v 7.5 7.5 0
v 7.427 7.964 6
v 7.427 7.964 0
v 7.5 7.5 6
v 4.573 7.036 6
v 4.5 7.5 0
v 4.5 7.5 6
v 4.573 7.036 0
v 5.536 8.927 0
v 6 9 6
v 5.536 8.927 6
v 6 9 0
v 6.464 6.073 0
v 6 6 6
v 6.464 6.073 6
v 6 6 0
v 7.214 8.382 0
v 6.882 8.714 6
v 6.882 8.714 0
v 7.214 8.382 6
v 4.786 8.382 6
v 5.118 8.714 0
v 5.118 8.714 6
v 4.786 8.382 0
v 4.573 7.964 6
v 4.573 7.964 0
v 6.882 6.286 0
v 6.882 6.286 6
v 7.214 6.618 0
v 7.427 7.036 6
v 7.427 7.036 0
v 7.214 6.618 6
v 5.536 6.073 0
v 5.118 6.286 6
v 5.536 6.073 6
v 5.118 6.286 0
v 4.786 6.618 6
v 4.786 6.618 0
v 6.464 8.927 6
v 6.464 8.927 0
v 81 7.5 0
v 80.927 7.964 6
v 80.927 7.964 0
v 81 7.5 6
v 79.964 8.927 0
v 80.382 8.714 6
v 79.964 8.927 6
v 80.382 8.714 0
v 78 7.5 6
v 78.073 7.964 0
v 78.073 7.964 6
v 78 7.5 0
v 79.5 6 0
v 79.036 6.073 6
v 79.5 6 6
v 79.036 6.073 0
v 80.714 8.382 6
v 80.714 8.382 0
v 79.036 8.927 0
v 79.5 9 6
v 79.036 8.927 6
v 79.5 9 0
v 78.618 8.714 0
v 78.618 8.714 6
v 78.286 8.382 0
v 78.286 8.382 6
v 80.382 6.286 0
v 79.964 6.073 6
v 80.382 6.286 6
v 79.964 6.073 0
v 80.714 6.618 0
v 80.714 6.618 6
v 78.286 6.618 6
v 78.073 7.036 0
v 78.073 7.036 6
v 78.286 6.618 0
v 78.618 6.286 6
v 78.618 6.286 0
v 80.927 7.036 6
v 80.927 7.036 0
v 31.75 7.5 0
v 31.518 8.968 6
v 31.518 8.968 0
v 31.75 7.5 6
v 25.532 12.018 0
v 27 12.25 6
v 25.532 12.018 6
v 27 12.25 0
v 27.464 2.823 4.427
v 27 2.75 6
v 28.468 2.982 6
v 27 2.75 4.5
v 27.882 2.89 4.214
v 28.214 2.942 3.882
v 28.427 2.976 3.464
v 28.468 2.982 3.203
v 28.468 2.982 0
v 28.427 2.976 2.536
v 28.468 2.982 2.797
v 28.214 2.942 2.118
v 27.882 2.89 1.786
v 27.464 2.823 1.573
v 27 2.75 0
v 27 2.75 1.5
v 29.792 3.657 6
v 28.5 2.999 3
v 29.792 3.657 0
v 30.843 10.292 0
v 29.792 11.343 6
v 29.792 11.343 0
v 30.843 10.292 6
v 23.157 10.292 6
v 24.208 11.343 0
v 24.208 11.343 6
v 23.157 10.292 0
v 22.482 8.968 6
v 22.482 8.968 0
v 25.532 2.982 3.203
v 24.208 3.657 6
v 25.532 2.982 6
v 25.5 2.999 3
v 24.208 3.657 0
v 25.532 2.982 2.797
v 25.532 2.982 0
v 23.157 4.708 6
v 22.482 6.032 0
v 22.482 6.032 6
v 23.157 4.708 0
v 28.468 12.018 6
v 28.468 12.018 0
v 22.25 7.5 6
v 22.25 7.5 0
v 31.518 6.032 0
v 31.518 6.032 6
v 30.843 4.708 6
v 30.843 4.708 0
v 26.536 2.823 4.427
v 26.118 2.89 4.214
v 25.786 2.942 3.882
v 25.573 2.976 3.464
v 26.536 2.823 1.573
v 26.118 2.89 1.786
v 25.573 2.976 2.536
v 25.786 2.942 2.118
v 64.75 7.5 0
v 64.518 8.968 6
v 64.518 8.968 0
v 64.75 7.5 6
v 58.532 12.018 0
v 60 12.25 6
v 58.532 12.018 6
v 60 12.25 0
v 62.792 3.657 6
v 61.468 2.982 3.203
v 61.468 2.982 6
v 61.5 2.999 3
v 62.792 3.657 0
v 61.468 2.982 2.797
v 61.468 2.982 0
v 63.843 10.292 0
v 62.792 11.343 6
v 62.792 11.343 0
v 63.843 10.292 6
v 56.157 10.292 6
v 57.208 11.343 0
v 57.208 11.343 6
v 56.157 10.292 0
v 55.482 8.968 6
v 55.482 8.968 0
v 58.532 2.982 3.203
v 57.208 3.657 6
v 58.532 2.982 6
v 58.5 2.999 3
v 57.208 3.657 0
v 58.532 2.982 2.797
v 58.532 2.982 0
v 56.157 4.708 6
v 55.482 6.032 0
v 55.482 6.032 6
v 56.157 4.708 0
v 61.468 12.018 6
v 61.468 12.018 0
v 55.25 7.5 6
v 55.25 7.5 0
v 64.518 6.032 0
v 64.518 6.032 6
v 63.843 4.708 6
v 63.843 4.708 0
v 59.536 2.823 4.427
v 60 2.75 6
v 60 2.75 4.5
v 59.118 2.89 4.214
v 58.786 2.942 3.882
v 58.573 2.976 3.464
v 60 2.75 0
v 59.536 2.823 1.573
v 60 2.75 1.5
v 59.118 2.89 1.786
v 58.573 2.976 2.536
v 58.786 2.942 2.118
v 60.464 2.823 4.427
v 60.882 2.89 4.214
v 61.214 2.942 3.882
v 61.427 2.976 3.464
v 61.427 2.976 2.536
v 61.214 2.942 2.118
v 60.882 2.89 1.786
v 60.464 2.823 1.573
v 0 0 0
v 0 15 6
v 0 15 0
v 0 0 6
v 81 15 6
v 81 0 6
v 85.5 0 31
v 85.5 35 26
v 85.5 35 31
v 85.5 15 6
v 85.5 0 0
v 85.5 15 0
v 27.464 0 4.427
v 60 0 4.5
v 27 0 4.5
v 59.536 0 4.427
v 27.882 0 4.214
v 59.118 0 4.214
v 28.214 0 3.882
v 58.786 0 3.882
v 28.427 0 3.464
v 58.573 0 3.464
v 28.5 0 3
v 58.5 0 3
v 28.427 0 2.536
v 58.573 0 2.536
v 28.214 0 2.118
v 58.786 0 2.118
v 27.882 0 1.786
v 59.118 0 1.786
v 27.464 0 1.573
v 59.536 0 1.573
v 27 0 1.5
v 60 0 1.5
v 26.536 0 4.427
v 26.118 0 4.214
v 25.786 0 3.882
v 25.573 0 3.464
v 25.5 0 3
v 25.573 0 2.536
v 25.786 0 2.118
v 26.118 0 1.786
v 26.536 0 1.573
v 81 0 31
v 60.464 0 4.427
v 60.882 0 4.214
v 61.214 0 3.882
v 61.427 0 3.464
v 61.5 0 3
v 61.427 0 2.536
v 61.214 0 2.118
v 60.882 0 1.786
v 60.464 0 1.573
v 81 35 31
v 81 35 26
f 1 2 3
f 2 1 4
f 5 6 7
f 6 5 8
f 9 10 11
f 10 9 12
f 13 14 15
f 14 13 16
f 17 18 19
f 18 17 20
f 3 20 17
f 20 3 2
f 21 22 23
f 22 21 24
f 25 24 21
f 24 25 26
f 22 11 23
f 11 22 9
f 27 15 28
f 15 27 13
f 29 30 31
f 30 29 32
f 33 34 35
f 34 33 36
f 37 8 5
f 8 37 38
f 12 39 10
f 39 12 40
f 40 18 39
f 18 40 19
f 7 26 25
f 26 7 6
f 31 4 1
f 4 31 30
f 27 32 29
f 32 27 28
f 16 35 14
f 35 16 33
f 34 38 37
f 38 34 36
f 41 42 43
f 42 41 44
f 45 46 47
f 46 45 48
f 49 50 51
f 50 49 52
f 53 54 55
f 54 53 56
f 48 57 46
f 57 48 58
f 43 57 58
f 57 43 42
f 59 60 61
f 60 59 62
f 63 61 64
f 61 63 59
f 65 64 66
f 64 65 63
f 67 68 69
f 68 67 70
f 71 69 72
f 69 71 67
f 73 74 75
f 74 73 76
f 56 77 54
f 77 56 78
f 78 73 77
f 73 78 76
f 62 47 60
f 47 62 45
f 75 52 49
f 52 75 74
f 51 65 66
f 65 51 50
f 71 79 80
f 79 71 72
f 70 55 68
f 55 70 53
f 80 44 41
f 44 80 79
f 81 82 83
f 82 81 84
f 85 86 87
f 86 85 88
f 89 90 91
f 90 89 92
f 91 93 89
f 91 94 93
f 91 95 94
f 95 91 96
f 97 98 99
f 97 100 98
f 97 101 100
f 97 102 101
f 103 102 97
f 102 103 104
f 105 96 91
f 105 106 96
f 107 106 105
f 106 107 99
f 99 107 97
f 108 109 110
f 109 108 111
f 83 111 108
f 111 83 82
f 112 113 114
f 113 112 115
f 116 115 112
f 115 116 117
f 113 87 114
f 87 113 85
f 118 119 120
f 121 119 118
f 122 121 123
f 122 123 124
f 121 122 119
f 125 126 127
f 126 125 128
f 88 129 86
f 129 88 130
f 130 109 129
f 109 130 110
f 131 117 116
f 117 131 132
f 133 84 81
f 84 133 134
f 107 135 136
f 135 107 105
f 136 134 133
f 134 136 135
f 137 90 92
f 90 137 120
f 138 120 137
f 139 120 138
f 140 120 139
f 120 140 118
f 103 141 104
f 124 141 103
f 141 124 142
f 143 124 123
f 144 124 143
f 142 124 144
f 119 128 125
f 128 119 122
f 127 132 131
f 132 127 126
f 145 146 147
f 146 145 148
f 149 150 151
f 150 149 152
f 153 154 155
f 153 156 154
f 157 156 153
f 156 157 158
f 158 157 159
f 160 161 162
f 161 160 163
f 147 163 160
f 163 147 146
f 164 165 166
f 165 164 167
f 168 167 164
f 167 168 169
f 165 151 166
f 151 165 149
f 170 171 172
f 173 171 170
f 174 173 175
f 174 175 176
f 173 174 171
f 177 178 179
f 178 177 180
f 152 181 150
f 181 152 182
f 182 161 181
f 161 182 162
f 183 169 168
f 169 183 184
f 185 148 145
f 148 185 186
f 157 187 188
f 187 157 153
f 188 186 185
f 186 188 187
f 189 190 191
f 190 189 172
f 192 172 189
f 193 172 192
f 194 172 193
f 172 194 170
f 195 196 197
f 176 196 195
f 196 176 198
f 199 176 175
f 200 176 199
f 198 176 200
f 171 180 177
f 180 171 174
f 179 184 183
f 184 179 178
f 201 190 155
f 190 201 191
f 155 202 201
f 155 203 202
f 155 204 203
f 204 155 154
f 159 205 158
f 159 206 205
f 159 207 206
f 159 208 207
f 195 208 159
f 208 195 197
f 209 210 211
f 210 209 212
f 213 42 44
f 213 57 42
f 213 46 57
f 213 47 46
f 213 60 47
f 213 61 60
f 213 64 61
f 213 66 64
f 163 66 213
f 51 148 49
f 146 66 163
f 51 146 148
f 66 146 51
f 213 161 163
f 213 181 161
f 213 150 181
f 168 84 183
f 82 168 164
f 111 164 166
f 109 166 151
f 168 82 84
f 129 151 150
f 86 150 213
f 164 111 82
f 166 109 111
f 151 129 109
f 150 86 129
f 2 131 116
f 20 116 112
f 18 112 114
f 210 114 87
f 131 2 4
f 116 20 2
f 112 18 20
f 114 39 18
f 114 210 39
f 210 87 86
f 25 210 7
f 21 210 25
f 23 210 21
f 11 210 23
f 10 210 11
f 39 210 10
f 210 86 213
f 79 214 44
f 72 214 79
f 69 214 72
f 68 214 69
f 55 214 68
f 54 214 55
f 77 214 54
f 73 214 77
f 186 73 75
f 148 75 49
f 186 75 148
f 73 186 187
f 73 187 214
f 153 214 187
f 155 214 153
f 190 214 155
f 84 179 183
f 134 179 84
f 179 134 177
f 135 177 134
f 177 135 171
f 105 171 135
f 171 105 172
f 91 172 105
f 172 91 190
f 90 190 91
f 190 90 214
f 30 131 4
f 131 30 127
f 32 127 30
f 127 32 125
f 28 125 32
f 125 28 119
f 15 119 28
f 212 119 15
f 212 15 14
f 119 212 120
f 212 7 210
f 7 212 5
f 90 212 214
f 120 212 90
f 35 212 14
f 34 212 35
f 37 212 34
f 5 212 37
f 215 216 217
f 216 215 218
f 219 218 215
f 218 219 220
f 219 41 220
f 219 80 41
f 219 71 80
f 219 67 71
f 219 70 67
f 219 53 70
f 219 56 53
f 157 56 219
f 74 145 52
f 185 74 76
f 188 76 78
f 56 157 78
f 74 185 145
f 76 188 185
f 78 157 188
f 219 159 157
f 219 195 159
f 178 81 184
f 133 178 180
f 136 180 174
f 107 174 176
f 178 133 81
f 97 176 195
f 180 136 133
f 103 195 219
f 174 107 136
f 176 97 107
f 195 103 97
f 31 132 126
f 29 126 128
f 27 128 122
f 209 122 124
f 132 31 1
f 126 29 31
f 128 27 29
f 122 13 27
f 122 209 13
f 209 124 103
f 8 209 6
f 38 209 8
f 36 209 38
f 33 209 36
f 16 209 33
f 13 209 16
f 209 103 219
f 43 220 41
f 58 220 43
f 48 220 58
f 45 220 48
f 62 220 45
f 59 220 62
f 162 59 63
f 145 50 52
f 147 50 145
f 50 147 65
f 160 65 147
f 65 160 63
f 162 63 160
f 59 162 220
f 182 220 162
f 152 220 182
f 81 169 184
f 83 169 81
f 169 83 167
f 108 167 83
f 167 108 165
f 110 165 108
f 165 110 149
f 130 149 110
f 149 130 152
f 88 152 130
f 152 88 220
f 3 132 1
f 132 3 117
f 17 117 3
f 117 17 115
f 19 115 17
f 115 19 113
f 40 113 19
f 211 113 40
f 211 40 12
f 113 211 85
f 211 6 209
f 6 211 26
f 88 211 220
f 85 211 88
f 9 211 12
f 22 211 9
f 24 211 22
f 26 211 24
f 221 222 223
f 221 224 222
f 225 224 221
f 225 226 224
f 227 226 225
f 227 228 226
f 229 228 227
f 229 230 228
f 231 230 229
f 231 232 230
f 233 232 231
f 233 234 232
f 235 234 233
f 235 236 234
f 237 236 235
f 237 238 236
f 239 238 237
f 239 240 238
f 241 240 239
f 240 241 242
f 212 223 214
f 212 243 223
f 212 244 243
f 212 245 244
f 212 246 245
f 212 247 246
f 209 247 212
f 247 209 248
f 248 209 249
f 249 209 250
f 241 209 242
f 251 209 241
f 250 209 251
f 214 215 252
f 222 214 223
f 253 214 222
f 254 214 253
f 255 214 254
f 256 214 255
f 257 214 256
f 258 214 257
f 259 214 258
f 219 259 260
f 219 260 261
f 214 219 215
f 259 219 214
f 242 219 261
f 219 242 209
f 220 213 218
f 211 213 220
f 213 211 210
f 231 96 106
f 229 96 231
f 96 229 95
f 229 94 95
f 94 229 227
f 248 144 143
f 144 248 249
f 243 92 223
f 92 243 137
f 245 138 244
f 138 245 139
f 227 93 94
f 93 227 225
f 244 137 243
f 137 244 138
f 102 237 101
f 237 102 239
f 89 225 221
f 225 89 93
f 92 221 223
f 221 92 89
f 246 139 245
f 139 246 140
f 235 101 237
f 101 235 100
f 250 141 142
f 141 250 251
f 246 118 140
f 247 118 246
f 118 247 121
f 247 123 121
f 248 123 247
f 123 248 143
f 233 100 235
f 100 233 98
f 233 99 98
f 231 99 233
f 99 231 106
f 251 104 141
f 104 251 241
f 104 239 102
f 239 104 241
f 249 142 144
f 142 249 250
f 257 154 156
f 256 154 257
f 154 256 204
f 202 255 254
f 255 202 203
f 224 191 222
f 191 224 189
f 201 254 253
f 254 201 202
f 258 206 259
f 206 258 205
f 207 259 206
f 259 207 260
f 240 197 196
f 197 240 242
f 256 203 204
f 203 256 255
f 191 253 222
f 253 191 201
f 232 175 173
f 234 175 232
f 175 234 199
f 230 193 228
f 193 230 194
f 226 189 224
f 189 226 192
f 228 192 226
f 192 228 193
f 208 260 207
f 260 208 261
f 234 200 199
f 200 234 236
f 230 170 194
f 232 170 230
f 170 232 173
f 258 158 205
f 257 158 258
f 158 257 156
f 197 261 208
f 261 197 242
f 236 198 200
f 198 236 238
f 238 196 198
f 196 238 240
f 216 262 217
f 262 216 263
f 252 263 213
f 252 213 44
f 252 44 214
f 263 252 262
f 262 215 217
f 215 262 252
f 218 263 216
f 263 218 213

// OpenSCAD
$fn=20;

length = 85.5;
width = 15;
thickness = 6;
screwRadius = 1.5;

penholder();

module penholder() {
  hullThickness = 4.5;
  hull() {
      translate([length-hullThickness, 0, thickness])
        cube(size=[hullThickness,width,1]);
      translate([length-hullThickness,0,thickness+20])
        cube(size=[hullThickness,width+20,5]);
  }
  difference() {
    cube(size=[length, width, thickness]);
    translate([0,0,-1]) {
      translate([6,width/2,0])
        cylinder(r=screwRadius, h=thickness+2);
      translate([length-6,width/2,0])
        cylinder(r=screwRadius, h=thickness+2);
      translate([27,width/2,0])
        cylinder(r=4.75, h=thickness+2);
      translate([60,width/2,0])
        cylinder(r=4.75, h=thickness+2);
    }
    translate([27, width/4, thickness/2])
      rotate([90,0,0])
        cylinder(r=screwRadius, h=4);
    translate([60, width/4, thickness/2])
      rotate([90,0,0])
        cylinder(r=screwRadius, h=4);
  }
}
